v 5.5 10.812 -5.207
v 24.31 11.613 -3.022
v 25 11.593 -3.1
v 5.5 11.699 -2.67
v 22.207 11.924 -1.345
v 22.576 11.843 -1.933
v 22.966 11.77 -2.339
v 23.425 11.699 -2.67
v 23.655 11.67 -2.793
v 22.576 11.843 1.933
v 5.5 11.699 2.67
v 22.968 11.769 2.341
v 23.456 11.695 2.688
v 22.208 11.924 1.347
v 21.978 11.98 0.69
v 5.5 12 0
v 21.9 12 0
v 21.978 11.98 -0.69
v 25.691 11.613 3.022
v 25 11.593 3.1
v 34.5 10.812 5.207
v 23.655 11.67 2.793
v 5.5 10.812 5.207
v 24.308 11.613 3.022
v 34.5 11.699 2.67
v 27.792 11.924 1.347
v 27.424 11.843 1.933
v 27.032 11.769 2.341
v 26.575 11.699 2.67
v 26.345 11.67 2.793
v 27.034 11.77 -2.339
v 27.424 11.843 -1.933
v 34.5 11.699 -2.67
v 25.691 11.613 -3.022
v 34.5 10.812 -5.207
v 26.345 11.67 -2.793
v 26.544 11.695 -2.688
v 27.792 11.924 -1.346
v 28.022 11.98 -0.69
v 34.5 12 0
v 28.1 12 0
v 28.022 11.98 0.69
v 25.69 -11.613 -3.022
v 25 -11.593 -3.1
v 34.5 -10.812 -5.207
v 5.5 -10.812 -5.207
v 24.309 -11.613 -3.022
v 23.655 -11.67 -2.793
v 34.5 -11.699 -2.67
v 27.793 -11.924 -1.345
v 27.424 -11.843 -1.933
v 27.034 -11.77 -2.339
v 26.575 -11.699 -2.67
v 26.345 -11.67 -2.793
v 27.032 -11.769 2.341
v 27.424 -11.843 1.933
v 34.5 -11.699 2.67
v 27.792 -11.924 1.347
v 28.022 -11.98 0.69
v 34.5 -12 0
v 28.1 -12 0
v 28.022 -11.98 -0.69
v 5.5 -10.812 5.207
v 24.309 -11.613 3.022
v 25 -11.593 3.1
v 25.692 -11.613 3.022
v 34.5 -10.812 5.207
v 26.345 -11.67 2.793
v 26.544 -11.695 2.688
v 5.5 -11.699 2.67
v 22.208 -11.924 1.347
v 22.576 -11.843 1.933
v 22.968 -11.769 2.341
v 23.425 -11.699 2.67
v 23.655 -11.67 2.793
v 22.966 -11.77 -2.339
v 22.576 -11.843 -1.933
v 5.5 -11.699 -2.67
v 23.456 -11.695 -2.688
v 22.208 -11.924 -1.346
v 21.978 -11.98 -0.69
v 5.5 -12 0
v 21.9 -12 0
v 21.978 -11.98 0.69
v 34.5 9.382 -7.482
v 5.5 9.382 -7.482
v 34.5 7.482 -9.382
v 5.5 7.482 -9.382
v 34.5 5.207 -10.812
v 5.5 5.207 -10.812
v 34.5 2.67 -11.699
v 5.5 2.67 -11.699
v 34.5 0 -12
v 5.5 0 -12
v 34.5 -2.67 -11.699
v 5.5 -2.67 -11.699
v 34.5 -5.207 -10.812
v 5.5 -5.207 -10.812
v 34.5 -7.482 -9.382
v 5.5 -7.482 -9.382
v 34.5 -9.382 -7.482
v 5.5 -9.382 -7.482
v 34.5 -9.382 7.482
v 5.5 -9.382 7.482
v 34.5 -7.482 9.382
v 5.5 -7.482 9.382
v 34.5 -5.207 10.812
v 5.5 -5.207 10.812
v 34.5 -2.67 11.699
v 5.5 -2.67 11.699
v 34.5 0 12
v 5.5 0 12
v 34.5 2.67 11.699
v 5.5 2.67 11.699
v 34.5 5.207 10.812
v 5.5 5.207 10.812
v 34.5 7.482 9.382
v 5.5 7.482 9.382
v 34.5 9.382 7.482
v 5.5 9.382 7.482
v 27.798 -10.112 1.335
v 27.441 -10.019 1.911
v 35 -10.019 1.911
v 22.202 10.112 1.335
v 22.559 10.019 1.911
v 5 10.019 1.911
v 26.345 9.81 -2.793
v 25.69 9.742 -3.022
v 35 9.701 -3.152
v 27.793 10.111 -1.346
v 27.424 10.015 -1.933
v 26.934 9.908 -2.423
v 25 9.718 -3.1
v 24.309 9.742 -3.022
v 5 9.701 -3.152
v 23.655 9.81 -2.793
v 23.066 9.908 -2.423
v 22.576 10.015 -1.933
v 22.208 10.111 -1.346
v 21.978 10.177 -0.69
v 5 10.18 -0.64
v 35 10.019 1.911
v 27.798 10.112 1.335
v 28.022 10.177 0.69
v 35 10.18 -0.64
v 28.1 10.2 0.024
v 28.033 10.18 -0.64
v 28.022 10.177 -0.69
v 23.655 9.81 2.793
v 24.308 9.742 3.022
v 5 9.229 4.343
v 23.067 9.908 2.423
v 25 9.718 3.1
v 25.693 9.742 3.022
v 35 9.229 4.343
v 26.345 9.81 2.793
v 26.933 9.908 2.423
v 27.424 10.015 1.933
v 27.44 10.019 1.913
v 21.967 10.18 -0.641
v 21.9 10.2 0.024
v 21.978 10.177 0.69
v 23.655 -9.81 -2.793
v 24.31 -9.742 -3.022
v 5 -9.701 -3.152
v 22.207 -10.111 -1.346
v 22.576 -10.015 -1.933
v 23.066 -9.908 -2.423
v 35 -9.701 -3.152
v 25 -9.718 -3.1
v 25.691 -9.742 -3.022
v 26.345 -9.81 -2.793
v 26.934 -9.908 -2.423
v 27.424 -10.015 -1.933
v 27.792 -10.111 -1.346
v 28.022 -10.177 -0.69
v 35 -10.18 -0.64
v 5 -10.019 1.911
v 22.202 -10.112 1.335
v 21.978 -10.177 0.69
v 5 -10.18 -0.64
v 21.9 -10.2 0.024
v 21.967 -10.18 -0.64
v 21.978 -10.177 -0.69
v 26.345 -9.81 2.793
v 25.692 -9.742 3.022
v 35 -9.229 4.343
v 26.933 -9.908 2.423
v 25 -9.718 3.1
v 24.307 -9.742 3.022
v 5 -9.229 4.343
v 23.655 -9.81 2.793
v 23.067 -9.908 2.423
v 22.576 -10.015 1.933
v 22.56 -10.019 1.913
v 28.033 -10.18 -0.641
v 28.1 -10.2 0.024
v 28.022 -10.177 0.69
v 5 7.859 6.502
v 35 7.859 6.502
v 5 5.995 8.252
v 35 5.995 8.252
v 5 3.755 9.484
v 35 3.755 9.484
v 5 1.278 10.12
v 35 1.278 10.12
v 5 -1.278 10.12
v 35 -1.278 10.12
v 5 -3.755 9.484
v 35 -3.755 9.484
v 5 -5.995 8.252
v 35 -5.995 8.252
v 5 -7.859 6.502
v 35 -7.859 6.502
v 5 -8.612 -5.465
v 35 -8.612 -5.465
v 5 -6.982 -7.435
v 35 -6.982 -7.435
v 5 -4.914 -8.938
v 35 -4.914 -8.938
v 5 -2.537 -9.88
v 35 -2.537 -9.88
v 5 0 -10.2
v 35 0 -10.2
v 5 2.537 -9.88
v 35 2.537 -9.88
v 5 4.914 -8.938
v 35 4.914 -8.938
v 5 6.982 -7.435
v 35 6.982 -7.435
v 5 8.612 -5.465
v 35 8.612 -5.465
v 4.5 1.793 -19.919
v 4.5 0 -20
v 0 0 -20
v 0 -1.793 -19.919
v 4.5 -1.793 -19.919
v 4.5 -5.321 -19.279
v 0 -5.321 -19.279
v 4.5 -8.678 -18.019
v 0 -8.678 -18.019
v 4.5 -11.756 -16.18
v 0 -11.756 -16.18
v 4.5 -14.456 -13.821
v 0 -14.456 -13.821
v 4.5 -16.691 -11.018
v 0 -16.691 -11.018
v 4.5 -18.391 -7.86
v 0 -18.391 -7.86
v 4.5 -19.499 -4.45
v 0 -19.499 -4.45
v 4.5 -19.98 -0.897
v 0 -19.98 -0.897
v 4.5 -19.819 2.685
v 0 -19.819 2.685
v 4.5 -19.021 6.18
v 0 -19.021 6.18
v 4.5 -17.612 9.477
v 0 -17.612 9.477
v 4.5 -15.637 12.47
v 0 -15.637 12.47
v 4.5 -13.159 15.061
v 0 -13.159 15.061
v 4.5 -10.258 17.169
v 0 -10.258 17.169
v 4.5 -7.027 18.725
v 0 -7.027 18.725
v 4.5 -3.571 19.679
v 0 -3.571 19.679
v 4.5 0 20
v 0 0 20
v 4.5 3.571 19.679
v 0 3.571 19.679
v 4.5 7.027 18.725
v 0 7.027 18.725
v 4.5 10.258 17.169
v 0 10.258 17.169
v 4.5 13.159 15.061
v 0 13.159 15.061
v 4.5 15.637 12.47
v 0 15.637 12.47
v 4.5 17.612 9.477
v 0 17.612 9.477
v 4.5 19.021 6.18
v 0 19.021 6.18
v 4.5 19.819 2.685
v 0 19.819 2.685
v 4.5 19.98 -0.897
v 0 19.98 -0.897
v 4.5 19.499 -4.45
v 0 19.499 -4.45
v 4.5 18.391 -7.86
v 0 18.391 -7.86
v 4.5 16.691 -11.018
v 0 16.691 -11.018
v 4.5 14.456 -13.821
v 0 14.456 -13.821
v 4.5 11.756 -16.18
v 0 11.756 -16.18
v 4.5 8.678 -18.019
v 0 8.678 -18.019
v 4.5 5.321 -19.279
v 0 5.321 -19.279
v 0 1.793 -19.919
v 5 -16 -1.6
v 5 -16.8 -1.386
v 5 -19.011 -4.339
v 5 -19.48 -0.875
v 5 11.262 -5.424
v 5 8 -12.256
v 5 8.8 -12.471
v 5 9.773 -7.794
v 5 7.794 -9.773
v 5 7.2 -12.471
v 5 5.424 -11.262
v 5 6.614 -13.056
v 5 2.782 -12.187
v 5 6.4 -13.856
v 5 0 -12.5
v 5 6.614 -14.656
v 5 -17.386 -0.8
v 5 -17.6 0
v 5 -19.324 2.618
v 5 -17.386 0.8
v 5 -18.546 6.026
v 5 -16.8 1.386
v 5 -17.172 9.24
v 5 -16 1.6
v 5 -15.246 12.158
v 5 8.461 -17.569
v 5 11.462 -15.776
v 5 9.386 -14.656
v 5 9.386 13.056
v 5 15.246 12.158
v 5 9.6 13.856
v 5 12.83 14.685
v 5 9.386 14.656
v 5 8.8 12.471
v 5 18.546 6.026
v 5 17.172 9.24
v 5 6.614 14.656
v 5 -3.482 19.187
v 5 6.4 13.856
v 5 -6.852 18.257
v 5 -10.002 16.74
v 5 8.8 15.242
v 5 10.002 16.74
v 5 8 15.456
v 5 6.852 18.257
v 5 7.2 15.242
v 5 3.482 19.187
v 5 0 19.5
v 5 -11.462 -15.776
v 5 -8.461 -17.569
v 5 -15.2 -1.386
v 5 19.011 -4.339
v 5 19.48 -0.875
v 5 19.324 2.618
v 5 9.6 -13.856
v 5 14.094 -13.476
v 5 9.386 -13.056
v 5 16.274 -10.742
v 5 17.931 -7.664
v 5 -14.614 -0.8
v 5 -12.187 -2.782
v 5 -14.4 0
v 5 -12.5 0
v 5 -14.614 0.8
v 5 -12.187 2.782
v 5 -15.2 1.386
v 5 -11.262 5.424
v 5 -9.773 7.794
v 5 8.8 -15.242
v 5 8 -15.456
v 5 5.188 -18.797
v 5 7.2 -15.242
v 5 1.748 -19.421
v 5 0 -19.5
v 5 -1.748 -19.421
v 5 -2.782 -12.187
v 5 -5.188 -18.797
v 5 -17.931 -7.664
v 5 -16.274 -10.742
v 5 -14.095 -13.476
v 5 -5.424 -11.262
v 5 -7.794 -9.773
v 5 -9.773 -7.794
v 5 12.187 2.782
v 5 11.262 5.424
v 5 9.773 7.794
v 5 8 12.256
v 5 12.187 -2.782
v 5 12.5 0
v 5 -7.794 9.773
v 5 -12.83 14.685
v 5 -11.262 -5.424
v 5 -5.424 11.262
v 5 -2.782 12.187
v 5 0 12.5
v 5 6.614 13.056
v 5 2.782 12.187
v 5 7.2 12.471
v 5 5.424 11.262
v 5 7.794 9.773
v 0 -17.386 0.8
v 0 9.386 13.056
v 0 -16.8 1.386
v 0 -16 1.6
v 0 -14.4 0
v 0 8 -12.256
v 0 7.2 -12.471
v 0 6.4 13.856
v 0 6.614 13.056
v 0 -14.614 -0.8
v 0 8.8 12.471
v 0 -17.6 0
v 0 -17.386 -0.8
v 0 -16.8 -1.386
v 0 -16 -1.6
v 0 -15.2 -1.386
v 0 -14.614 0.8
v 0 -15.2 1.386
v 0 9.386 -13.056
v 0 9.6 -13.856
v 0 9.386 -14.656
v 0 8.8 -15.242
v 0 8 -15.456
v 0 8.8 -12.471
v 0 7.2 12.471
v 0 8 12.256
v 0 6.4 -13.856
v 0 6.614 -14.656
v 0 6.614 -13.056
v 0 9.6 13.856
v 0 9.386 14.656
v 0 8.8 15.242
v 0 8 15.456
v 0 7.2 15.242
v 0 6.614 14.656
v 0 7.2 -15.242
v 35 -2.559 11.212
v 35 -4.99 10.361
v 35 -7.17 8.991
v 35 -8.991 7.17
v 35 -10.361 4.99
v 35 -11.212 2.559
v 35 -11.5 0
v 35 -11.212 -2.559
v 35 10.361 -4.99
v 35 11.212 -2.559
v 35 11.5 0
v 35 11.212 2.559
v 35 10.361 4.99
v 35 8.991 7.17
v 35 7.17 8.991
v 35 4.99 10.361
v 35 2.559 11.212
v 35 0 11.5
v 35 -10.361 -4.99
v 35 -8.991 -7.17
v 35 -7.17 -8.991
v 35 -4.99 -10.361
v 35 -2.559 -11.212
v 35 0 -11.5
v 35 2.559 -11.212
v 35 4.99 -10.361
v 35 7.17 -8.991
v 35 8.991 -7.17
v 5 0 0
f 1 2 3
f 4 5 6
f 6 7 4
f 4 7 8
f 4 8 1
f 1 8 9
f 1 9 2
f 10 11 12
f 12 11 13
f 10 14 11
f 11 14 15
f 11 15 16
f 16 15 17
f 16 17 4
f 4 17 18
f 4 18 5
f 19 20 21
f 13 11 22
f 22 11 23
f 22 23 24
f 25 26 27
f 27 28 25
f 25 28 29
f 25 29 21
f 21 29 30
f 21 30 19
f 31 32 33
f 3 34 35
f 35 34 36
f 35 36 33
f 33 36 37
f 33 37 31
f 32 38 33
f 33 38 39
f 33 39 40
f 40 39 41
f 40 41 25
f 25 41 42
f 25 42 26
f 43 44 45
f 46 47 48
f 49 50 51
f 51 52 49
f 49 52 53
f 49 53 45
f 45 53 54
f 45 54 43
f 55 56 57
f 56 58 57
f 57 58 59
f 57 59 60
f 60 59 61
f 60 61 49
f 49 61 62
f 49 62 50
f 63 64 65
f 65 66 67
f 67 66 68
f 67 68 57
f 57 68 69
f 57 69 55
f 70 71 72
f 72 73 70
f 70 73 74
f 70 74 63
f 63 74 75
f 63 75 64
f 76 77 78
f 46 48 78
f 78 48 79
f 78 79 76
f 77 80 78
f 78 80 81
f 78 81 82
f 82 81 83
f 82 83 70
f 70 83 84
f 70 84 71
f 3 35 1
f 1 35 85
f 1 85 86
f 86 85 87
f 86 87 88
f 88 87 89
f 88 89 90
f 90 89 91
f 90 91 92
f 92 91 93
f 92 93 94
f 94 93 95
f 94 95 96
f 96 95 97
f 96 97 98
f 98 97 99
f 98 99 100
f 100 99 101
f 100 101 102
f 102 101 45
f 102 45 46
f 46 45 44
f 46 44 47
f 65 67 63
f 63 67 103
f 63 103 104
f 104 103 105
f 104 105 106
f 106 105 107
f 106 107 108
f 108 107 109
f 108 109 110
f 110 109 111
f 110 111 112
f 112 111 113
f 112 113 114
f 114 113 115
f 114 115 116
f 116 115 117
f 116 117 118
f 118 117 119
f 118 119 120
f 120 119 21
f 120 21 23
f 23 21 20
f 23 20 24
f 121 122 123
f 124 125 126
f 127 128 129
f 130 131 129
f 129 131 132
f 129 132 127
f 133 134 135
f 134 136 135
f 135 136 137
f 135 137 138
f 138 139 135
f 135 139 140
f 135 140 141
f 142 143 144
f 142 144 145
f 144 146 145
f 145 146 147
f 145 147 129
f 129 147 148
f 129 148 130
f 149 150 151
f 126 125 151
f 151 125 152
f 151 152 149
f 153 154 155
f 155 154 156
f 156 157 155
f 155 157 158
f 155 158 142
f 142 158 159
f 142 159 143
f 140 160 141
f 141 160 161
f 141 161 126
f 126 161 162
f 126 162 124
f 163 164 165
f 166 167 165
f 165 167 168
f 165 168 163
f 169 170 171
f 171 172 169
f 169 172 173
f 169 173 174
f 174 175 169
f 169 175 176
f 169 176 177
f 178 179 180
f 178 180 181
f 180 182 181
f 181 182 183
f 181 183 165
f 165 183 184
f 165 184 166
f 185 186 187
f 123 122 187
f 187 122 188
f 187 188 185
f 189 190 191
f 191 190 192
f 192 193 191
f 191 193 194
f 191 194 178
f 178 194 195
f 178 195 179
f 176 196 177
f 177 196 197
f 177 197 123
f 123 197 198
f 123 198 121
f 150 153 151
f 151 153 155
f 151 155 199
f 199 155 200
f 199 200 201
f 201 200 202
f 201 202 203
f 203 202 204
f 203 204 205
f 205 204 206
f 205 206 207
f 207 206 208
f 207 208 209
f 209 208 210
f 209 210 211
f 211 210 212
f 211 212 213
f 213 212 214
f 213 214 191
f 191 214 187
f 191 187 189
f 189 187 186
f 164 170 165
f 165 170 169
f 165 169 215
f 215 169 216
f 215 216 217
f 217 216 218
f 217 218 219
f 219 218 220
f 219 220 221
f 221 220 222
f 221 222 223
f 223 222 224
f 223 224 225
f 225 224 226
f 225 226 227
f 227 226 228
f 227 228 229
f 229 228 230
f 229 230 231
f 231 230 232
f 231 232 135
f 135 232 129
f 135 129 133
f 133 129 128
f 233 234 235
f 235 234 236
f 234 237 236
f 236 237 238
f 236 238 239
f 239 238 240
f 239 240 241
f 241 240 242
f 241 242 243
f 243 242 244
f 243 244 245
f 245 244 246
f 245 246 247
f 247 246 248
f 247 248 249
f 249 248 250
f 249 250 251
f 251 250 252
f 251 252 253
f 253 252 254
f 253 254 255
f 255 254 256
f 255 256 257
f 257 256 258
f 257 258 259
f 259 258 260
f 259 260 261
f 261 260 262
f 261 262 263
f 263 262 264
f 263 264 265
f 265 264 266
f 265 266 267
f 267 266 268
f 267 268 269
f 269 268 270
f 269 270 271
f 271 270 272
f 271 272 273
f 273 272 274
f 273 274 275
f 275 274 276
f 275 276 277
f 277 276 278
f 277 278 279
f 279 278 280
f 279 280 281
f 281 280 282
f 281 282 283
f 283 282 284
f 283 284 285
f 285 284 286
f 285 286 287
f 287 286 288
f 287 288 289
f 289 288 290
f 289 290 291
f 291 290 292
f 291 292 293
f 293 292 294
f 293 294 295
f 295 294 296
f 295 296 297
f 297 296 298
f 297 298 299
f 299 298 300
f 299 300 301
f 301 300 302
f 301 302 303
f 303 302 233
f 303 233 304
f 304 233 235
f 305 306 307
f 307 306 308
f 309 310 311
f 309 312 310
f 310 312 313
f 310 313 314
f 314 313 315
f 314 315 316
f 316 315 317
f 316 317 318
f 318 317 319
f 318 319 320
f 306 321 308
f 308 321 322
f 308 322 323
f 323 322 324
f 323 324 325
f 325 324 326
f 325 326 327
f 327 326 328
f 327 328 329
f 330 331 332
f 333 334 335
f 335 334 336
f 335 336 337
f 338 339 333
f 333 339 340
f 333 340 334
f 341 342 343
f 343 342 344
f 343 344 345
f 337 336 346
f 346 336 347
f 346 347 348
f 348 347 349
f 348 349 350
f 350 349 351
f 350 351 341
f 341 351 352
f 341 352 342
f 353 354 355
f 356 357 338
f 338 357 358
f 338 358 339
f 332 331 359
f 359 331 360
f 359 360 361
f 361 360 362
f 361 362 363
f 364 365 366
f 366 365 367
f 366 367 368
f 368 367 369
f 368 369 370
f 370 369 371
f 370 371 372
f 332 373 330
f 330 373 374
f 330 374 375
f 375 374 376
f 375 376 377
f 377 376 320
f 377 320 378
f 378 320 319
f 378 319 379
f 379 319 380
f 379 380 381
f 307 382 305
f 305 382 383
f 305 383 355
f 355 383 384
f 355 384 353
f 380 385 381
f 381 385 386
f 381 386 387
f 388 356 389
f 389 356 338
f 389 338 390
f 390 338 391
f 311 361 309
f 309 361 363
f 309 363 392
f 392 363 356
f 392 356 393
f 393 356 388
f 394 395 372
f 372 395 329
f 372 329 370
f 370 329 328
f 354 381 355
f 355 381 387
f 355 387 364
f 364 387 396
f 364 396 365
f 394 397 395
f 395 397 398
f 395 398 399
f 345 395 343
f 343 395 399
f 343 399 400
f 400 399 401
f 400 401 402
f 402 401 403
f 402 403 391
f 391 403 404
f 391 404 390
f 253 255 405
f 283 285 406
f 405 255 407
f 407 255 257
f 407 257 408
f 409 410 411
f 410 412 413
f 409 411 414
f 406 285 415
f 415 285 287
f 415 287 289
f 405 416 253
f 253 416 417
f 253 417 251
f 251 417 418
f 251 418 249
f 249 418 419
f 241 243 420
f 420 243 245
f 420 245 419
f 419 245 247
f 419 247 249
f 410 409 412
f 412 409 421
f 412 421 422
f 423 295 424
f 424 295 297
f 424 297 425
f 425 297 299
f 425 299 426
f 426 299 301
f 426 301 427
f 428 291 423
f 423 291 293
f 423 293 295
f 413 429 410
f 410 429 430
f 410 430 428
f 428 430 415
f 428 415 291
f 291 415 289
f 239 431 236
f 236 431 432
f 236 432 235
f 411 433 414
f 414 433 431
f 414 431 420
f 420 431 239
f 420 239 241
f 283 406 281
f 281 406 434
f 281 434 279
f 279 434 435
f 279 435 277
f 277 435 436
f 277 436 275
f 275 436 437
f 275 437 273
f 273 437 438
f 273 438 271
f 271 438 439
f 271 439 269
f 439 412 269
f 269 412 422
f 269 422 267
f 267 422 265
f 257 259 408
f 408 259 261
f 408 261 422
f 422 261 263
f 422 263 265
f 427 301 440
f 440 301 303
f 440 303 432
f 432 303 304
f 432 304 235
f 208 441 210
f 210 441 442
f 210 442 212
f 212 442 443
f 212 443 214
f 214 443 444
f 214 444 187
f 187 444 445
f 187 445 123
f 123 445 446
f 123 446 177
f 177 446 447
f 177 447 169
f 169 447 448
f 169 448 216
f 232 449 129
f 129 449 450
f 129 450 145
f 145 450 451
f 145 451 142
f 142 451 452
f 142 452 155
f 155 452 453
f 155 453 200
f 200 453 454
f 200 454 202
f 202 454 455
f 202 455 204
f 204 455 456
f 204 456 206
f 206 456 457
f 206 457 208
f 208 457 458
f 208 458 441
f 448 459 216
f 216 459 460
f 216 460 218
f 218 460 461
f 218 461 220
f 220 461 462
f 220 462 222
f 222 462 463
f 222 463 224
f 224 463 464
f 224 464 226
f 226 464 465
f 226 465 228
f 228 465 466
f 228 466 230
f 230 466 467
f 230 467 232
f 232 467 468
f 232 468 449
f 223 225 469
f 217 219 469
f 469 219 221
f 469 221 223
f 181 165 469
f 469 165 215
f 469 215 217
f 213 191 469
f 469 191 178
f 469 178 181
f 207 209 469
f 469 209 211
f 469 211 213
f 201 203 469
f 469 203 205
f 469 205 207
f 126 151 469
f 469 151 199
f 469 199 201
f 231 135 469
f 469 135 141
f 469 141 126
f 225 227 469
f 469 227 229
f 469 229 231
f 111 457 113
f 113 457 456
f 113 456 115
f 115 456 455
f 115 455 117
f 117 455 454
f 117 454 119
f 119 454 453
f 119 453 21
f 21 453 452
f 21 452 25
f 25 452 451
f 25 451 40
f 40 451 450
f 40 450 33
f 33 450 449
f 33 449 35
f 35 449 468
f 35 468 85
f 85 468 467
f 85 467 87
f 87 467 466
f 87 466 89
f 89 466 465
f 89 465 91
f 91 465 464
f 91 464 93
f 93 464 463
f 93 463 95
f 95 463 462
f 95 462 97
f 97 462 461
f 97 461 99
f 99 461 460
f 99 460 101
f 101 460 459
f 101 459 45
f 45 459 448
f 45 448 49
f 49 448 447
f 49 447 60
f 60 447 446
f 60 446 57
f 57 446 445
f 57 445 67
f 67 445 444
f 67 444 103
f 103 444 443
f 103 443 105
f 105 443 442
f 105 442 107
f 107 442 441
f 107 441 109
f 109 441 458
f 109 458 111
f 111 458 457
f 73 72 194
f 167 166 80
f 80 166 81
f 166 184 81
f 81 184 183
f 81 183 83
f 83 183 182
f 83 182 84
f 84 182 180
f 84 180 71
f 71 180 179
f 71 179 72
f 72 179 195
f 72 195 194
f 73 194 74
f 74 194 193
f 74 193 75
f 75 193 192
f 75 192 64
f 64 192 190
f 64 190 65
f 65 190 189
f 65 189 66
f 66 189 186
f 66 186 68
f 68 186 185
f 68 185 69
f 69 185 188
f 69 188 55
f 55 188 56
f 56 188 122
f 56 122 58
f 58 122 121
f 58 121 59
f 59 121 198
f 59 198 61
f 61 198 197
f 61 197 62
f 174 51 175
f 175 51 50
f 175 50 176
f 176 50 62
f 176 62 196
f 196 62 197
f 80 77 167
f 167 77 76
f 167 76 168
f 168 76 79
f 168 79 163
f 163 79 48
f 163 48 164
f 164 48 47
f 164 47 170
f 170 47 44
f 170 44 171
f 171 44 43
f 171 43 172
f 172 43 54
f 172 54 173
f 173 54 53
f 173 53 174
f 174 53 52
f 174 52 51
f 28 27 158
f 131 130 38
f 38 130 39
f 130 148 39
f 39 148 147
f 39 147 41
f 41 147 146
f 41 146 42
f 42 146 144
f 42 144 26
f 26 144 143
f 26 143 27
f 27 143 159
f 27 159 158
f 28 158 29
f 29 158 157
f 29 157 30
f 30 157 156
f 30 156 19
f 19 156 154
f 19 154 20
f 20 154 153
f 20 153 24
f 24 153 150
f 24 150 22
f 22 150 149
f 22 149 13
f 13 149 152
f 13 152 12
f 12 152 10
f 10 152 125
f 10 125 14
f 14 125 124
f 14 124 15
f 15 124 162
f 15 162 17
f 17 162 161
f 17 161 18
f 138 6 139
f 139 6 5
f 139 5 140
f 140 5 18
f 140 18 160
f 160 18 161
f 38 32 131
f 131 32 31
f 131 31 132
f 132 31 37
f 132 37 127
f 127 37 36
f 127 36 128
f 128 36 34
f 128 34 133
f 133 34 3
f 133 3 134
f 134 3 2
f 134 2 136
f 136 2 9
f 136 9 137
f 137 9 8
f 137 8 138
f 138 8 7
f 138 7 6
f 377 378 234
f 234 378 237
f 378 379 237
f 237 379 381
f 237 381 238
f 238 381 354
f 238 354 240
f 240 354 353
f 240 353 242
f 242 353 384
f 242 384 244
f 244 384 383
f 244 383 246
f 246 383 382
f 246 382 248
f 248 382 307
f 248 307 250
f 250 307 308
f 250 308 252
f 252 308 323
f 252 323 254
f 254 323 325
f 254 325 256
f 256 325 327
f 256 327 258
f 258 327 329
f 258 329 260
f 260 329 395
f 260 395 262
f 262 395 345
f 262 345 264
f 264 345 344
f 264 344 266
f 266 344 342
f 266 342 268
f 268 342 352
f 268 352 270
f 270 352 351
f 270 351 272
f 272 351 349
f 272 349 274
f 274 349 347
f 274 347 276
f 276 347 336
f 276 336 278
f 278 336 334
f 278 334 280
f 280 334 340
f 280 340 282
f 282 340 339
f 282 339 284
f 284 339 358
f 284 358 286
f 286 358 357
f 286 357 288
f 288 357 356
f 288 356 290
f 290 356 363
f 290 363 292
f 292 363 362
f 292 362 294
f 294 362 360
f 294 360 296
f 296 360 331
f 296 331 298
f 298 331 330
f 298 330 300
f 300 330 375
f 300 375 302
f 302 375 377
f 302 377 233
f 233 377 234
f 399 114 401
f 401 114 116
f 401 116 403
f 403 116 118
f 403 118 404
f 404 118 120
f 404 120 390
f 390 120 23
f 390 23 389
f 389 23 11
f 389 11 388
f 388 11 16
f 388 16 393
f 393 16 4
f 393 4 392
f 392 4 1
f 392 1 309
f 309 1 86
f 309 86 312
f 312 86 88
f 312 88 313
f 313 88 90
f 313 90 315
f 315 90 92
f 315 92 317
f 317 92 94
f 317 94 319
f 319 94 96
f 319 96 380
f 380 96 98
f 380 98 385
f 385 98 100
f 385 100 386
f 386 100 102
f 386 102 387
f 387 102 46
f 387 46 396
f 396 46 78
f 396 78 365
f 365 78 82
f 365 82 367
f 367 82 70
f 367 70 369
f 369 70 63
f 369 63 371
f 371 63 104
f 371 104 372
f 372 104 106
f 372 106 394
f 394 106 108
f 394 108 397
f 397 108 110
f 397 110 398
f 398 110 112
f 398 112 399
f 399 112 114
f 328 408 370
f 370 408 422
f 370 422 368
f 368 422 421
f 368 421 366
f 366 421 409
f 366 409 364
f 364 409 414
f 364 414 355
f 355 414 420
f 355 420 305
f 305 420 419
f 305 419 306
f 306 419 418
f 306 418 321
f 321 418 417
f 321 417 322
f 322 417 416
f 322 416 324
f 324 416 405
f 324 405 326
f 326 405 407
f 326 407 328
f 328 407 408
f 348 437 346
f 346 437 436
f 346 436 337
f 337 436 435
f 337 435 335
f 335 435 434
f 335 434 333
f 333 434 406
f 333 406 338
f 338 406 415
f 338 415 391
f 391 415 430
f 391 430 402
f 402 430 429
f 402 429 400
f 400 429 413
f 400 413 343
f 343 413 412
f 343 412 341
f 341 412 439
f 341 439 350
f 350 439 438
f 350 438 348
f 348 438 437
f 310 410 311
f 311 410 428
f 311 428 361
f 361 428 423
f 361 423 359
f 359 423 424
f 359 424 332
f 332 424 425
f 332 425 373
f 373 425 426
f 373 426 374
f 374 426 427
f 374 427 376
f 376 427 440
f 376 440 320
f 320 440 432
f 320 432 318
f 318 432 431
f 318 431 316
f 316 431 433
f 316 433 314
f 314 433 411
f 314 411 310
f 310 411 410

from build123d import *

# Parameters (mm, degrees)
SKETCH_1_R               = 20
EXTRUDE_1_DEPTH          = 5
SKETCH_6_R               = 12
EXTRUDE_2_DEPTH          = 30
SKETCH_7_R               = 10.2
CUT_EXTRUDE_2_DEPTH      = 30
CHAMFER_1_SIZE           = 0.5
CUT_EXTRUDE_3_DEPTH      = 46
CUT_EXTRUDE_3_DEPTH_BACK = 46
SKETCH_8_R               = 3.1
CHAMFER_2_SIZE           = 0.5
CHAMFER_3_SIZE           = 0.5
SKETCH_9_R               = 1.6
CUT_EXTRUDE_4_DEPTH      = 10


with BuildPart() as part:
    # 草图1 → 凸台-拉伸1 (new body)
    with BuildSketch(Plane(origin=(0, 0, 0), x_dir=(0, 0, -1), z_dir=(1, 0, 0))):
        Circle(SKETCH_1_R)
    extrude(amount=EXTRUDE_1_DEPTH)

    # 草图6 → 凸台-拉伸2 (add)
    with BuildSketch(Plane(origin=(5, 0, 0), x_dir=(0, 0, -1), z_dir=(1, 0, 0))):
        Circle(SKETCH_6_R)
    extrude(amount=EXTRUDE_2_DEPTH)

    # 草图7 → 切除-拉伸2 (cut)
    with BuildSketch(Plane(origin=(35, 0, 0), x_dir=(0, 0, -1), z_dir=(1, 0, 0))):
        Circle(SKETCH_7_R)
    extrude(amount=-CUT_EXTRUDE_2_DEPTH, mode=Mode.SUBTRACT)

    # 倒角1
    chamfer_1_edges = [part.edges().sort_by_distance(p)[0] for p in [
        (35, 0, 12),
    ]]
    chamfer(chamfer_1_edges, length=CHAMFER_1_SIZE)

    # 草图8 → 切除-拉伸3 (cut, two sides: drawn at the far end of the back side and taken through both)
    with BuildSketch(Plane(origin=(0, 0, 0), x_dir=(1, 0, 0), z_dir=(0, 1, 0)).offset(-CUT_EXTRUDE_3_DEPTH_BACK)):
        with Locations(Location((25, 0, 0), (0, 0, 90))):
            Circle(SKETCH_8_R)
    extrude(amount=CUT_EXTRUDE_3_DEPTH + CUT_EXTRUDE_3_DEPTH_BACK, mode=Mode.SUBTRACT)

    # 倒角2
    chamfer_2_edges = [part.edges().sort_by_distance(p)[0] for p in [
        (5, 0, 20),
    ]]
    chamfer(chamfer_2_edges, length=CHAMFER_2_SIZE)

    # 倒角3
    chamfer_3_edges = [part.edges().sort_by_distance(p)[0] for p in [
        (5, 0, 12),
    ]]
    chamfer(chamfer_3_edges, length=CHAMFER_3_SIZE)

    # 草图9 → 切除-拉伸4 (cut)
    with BuildSketch(Plane.ZY):
        with Locations((-13.856406461, 8)):
            Circle(SKETCH_9_R)
        with Locations((13.856406461, 8)):
            Circle(SKETCH_9_R)
        with Locations((0, -16)):
            Circle(SKETCH_9_R)
    extrude(amount=-CUT_EXTRUDE_4_DEPTH, mode=Mode.SUBTRACT)


solid = part.part
